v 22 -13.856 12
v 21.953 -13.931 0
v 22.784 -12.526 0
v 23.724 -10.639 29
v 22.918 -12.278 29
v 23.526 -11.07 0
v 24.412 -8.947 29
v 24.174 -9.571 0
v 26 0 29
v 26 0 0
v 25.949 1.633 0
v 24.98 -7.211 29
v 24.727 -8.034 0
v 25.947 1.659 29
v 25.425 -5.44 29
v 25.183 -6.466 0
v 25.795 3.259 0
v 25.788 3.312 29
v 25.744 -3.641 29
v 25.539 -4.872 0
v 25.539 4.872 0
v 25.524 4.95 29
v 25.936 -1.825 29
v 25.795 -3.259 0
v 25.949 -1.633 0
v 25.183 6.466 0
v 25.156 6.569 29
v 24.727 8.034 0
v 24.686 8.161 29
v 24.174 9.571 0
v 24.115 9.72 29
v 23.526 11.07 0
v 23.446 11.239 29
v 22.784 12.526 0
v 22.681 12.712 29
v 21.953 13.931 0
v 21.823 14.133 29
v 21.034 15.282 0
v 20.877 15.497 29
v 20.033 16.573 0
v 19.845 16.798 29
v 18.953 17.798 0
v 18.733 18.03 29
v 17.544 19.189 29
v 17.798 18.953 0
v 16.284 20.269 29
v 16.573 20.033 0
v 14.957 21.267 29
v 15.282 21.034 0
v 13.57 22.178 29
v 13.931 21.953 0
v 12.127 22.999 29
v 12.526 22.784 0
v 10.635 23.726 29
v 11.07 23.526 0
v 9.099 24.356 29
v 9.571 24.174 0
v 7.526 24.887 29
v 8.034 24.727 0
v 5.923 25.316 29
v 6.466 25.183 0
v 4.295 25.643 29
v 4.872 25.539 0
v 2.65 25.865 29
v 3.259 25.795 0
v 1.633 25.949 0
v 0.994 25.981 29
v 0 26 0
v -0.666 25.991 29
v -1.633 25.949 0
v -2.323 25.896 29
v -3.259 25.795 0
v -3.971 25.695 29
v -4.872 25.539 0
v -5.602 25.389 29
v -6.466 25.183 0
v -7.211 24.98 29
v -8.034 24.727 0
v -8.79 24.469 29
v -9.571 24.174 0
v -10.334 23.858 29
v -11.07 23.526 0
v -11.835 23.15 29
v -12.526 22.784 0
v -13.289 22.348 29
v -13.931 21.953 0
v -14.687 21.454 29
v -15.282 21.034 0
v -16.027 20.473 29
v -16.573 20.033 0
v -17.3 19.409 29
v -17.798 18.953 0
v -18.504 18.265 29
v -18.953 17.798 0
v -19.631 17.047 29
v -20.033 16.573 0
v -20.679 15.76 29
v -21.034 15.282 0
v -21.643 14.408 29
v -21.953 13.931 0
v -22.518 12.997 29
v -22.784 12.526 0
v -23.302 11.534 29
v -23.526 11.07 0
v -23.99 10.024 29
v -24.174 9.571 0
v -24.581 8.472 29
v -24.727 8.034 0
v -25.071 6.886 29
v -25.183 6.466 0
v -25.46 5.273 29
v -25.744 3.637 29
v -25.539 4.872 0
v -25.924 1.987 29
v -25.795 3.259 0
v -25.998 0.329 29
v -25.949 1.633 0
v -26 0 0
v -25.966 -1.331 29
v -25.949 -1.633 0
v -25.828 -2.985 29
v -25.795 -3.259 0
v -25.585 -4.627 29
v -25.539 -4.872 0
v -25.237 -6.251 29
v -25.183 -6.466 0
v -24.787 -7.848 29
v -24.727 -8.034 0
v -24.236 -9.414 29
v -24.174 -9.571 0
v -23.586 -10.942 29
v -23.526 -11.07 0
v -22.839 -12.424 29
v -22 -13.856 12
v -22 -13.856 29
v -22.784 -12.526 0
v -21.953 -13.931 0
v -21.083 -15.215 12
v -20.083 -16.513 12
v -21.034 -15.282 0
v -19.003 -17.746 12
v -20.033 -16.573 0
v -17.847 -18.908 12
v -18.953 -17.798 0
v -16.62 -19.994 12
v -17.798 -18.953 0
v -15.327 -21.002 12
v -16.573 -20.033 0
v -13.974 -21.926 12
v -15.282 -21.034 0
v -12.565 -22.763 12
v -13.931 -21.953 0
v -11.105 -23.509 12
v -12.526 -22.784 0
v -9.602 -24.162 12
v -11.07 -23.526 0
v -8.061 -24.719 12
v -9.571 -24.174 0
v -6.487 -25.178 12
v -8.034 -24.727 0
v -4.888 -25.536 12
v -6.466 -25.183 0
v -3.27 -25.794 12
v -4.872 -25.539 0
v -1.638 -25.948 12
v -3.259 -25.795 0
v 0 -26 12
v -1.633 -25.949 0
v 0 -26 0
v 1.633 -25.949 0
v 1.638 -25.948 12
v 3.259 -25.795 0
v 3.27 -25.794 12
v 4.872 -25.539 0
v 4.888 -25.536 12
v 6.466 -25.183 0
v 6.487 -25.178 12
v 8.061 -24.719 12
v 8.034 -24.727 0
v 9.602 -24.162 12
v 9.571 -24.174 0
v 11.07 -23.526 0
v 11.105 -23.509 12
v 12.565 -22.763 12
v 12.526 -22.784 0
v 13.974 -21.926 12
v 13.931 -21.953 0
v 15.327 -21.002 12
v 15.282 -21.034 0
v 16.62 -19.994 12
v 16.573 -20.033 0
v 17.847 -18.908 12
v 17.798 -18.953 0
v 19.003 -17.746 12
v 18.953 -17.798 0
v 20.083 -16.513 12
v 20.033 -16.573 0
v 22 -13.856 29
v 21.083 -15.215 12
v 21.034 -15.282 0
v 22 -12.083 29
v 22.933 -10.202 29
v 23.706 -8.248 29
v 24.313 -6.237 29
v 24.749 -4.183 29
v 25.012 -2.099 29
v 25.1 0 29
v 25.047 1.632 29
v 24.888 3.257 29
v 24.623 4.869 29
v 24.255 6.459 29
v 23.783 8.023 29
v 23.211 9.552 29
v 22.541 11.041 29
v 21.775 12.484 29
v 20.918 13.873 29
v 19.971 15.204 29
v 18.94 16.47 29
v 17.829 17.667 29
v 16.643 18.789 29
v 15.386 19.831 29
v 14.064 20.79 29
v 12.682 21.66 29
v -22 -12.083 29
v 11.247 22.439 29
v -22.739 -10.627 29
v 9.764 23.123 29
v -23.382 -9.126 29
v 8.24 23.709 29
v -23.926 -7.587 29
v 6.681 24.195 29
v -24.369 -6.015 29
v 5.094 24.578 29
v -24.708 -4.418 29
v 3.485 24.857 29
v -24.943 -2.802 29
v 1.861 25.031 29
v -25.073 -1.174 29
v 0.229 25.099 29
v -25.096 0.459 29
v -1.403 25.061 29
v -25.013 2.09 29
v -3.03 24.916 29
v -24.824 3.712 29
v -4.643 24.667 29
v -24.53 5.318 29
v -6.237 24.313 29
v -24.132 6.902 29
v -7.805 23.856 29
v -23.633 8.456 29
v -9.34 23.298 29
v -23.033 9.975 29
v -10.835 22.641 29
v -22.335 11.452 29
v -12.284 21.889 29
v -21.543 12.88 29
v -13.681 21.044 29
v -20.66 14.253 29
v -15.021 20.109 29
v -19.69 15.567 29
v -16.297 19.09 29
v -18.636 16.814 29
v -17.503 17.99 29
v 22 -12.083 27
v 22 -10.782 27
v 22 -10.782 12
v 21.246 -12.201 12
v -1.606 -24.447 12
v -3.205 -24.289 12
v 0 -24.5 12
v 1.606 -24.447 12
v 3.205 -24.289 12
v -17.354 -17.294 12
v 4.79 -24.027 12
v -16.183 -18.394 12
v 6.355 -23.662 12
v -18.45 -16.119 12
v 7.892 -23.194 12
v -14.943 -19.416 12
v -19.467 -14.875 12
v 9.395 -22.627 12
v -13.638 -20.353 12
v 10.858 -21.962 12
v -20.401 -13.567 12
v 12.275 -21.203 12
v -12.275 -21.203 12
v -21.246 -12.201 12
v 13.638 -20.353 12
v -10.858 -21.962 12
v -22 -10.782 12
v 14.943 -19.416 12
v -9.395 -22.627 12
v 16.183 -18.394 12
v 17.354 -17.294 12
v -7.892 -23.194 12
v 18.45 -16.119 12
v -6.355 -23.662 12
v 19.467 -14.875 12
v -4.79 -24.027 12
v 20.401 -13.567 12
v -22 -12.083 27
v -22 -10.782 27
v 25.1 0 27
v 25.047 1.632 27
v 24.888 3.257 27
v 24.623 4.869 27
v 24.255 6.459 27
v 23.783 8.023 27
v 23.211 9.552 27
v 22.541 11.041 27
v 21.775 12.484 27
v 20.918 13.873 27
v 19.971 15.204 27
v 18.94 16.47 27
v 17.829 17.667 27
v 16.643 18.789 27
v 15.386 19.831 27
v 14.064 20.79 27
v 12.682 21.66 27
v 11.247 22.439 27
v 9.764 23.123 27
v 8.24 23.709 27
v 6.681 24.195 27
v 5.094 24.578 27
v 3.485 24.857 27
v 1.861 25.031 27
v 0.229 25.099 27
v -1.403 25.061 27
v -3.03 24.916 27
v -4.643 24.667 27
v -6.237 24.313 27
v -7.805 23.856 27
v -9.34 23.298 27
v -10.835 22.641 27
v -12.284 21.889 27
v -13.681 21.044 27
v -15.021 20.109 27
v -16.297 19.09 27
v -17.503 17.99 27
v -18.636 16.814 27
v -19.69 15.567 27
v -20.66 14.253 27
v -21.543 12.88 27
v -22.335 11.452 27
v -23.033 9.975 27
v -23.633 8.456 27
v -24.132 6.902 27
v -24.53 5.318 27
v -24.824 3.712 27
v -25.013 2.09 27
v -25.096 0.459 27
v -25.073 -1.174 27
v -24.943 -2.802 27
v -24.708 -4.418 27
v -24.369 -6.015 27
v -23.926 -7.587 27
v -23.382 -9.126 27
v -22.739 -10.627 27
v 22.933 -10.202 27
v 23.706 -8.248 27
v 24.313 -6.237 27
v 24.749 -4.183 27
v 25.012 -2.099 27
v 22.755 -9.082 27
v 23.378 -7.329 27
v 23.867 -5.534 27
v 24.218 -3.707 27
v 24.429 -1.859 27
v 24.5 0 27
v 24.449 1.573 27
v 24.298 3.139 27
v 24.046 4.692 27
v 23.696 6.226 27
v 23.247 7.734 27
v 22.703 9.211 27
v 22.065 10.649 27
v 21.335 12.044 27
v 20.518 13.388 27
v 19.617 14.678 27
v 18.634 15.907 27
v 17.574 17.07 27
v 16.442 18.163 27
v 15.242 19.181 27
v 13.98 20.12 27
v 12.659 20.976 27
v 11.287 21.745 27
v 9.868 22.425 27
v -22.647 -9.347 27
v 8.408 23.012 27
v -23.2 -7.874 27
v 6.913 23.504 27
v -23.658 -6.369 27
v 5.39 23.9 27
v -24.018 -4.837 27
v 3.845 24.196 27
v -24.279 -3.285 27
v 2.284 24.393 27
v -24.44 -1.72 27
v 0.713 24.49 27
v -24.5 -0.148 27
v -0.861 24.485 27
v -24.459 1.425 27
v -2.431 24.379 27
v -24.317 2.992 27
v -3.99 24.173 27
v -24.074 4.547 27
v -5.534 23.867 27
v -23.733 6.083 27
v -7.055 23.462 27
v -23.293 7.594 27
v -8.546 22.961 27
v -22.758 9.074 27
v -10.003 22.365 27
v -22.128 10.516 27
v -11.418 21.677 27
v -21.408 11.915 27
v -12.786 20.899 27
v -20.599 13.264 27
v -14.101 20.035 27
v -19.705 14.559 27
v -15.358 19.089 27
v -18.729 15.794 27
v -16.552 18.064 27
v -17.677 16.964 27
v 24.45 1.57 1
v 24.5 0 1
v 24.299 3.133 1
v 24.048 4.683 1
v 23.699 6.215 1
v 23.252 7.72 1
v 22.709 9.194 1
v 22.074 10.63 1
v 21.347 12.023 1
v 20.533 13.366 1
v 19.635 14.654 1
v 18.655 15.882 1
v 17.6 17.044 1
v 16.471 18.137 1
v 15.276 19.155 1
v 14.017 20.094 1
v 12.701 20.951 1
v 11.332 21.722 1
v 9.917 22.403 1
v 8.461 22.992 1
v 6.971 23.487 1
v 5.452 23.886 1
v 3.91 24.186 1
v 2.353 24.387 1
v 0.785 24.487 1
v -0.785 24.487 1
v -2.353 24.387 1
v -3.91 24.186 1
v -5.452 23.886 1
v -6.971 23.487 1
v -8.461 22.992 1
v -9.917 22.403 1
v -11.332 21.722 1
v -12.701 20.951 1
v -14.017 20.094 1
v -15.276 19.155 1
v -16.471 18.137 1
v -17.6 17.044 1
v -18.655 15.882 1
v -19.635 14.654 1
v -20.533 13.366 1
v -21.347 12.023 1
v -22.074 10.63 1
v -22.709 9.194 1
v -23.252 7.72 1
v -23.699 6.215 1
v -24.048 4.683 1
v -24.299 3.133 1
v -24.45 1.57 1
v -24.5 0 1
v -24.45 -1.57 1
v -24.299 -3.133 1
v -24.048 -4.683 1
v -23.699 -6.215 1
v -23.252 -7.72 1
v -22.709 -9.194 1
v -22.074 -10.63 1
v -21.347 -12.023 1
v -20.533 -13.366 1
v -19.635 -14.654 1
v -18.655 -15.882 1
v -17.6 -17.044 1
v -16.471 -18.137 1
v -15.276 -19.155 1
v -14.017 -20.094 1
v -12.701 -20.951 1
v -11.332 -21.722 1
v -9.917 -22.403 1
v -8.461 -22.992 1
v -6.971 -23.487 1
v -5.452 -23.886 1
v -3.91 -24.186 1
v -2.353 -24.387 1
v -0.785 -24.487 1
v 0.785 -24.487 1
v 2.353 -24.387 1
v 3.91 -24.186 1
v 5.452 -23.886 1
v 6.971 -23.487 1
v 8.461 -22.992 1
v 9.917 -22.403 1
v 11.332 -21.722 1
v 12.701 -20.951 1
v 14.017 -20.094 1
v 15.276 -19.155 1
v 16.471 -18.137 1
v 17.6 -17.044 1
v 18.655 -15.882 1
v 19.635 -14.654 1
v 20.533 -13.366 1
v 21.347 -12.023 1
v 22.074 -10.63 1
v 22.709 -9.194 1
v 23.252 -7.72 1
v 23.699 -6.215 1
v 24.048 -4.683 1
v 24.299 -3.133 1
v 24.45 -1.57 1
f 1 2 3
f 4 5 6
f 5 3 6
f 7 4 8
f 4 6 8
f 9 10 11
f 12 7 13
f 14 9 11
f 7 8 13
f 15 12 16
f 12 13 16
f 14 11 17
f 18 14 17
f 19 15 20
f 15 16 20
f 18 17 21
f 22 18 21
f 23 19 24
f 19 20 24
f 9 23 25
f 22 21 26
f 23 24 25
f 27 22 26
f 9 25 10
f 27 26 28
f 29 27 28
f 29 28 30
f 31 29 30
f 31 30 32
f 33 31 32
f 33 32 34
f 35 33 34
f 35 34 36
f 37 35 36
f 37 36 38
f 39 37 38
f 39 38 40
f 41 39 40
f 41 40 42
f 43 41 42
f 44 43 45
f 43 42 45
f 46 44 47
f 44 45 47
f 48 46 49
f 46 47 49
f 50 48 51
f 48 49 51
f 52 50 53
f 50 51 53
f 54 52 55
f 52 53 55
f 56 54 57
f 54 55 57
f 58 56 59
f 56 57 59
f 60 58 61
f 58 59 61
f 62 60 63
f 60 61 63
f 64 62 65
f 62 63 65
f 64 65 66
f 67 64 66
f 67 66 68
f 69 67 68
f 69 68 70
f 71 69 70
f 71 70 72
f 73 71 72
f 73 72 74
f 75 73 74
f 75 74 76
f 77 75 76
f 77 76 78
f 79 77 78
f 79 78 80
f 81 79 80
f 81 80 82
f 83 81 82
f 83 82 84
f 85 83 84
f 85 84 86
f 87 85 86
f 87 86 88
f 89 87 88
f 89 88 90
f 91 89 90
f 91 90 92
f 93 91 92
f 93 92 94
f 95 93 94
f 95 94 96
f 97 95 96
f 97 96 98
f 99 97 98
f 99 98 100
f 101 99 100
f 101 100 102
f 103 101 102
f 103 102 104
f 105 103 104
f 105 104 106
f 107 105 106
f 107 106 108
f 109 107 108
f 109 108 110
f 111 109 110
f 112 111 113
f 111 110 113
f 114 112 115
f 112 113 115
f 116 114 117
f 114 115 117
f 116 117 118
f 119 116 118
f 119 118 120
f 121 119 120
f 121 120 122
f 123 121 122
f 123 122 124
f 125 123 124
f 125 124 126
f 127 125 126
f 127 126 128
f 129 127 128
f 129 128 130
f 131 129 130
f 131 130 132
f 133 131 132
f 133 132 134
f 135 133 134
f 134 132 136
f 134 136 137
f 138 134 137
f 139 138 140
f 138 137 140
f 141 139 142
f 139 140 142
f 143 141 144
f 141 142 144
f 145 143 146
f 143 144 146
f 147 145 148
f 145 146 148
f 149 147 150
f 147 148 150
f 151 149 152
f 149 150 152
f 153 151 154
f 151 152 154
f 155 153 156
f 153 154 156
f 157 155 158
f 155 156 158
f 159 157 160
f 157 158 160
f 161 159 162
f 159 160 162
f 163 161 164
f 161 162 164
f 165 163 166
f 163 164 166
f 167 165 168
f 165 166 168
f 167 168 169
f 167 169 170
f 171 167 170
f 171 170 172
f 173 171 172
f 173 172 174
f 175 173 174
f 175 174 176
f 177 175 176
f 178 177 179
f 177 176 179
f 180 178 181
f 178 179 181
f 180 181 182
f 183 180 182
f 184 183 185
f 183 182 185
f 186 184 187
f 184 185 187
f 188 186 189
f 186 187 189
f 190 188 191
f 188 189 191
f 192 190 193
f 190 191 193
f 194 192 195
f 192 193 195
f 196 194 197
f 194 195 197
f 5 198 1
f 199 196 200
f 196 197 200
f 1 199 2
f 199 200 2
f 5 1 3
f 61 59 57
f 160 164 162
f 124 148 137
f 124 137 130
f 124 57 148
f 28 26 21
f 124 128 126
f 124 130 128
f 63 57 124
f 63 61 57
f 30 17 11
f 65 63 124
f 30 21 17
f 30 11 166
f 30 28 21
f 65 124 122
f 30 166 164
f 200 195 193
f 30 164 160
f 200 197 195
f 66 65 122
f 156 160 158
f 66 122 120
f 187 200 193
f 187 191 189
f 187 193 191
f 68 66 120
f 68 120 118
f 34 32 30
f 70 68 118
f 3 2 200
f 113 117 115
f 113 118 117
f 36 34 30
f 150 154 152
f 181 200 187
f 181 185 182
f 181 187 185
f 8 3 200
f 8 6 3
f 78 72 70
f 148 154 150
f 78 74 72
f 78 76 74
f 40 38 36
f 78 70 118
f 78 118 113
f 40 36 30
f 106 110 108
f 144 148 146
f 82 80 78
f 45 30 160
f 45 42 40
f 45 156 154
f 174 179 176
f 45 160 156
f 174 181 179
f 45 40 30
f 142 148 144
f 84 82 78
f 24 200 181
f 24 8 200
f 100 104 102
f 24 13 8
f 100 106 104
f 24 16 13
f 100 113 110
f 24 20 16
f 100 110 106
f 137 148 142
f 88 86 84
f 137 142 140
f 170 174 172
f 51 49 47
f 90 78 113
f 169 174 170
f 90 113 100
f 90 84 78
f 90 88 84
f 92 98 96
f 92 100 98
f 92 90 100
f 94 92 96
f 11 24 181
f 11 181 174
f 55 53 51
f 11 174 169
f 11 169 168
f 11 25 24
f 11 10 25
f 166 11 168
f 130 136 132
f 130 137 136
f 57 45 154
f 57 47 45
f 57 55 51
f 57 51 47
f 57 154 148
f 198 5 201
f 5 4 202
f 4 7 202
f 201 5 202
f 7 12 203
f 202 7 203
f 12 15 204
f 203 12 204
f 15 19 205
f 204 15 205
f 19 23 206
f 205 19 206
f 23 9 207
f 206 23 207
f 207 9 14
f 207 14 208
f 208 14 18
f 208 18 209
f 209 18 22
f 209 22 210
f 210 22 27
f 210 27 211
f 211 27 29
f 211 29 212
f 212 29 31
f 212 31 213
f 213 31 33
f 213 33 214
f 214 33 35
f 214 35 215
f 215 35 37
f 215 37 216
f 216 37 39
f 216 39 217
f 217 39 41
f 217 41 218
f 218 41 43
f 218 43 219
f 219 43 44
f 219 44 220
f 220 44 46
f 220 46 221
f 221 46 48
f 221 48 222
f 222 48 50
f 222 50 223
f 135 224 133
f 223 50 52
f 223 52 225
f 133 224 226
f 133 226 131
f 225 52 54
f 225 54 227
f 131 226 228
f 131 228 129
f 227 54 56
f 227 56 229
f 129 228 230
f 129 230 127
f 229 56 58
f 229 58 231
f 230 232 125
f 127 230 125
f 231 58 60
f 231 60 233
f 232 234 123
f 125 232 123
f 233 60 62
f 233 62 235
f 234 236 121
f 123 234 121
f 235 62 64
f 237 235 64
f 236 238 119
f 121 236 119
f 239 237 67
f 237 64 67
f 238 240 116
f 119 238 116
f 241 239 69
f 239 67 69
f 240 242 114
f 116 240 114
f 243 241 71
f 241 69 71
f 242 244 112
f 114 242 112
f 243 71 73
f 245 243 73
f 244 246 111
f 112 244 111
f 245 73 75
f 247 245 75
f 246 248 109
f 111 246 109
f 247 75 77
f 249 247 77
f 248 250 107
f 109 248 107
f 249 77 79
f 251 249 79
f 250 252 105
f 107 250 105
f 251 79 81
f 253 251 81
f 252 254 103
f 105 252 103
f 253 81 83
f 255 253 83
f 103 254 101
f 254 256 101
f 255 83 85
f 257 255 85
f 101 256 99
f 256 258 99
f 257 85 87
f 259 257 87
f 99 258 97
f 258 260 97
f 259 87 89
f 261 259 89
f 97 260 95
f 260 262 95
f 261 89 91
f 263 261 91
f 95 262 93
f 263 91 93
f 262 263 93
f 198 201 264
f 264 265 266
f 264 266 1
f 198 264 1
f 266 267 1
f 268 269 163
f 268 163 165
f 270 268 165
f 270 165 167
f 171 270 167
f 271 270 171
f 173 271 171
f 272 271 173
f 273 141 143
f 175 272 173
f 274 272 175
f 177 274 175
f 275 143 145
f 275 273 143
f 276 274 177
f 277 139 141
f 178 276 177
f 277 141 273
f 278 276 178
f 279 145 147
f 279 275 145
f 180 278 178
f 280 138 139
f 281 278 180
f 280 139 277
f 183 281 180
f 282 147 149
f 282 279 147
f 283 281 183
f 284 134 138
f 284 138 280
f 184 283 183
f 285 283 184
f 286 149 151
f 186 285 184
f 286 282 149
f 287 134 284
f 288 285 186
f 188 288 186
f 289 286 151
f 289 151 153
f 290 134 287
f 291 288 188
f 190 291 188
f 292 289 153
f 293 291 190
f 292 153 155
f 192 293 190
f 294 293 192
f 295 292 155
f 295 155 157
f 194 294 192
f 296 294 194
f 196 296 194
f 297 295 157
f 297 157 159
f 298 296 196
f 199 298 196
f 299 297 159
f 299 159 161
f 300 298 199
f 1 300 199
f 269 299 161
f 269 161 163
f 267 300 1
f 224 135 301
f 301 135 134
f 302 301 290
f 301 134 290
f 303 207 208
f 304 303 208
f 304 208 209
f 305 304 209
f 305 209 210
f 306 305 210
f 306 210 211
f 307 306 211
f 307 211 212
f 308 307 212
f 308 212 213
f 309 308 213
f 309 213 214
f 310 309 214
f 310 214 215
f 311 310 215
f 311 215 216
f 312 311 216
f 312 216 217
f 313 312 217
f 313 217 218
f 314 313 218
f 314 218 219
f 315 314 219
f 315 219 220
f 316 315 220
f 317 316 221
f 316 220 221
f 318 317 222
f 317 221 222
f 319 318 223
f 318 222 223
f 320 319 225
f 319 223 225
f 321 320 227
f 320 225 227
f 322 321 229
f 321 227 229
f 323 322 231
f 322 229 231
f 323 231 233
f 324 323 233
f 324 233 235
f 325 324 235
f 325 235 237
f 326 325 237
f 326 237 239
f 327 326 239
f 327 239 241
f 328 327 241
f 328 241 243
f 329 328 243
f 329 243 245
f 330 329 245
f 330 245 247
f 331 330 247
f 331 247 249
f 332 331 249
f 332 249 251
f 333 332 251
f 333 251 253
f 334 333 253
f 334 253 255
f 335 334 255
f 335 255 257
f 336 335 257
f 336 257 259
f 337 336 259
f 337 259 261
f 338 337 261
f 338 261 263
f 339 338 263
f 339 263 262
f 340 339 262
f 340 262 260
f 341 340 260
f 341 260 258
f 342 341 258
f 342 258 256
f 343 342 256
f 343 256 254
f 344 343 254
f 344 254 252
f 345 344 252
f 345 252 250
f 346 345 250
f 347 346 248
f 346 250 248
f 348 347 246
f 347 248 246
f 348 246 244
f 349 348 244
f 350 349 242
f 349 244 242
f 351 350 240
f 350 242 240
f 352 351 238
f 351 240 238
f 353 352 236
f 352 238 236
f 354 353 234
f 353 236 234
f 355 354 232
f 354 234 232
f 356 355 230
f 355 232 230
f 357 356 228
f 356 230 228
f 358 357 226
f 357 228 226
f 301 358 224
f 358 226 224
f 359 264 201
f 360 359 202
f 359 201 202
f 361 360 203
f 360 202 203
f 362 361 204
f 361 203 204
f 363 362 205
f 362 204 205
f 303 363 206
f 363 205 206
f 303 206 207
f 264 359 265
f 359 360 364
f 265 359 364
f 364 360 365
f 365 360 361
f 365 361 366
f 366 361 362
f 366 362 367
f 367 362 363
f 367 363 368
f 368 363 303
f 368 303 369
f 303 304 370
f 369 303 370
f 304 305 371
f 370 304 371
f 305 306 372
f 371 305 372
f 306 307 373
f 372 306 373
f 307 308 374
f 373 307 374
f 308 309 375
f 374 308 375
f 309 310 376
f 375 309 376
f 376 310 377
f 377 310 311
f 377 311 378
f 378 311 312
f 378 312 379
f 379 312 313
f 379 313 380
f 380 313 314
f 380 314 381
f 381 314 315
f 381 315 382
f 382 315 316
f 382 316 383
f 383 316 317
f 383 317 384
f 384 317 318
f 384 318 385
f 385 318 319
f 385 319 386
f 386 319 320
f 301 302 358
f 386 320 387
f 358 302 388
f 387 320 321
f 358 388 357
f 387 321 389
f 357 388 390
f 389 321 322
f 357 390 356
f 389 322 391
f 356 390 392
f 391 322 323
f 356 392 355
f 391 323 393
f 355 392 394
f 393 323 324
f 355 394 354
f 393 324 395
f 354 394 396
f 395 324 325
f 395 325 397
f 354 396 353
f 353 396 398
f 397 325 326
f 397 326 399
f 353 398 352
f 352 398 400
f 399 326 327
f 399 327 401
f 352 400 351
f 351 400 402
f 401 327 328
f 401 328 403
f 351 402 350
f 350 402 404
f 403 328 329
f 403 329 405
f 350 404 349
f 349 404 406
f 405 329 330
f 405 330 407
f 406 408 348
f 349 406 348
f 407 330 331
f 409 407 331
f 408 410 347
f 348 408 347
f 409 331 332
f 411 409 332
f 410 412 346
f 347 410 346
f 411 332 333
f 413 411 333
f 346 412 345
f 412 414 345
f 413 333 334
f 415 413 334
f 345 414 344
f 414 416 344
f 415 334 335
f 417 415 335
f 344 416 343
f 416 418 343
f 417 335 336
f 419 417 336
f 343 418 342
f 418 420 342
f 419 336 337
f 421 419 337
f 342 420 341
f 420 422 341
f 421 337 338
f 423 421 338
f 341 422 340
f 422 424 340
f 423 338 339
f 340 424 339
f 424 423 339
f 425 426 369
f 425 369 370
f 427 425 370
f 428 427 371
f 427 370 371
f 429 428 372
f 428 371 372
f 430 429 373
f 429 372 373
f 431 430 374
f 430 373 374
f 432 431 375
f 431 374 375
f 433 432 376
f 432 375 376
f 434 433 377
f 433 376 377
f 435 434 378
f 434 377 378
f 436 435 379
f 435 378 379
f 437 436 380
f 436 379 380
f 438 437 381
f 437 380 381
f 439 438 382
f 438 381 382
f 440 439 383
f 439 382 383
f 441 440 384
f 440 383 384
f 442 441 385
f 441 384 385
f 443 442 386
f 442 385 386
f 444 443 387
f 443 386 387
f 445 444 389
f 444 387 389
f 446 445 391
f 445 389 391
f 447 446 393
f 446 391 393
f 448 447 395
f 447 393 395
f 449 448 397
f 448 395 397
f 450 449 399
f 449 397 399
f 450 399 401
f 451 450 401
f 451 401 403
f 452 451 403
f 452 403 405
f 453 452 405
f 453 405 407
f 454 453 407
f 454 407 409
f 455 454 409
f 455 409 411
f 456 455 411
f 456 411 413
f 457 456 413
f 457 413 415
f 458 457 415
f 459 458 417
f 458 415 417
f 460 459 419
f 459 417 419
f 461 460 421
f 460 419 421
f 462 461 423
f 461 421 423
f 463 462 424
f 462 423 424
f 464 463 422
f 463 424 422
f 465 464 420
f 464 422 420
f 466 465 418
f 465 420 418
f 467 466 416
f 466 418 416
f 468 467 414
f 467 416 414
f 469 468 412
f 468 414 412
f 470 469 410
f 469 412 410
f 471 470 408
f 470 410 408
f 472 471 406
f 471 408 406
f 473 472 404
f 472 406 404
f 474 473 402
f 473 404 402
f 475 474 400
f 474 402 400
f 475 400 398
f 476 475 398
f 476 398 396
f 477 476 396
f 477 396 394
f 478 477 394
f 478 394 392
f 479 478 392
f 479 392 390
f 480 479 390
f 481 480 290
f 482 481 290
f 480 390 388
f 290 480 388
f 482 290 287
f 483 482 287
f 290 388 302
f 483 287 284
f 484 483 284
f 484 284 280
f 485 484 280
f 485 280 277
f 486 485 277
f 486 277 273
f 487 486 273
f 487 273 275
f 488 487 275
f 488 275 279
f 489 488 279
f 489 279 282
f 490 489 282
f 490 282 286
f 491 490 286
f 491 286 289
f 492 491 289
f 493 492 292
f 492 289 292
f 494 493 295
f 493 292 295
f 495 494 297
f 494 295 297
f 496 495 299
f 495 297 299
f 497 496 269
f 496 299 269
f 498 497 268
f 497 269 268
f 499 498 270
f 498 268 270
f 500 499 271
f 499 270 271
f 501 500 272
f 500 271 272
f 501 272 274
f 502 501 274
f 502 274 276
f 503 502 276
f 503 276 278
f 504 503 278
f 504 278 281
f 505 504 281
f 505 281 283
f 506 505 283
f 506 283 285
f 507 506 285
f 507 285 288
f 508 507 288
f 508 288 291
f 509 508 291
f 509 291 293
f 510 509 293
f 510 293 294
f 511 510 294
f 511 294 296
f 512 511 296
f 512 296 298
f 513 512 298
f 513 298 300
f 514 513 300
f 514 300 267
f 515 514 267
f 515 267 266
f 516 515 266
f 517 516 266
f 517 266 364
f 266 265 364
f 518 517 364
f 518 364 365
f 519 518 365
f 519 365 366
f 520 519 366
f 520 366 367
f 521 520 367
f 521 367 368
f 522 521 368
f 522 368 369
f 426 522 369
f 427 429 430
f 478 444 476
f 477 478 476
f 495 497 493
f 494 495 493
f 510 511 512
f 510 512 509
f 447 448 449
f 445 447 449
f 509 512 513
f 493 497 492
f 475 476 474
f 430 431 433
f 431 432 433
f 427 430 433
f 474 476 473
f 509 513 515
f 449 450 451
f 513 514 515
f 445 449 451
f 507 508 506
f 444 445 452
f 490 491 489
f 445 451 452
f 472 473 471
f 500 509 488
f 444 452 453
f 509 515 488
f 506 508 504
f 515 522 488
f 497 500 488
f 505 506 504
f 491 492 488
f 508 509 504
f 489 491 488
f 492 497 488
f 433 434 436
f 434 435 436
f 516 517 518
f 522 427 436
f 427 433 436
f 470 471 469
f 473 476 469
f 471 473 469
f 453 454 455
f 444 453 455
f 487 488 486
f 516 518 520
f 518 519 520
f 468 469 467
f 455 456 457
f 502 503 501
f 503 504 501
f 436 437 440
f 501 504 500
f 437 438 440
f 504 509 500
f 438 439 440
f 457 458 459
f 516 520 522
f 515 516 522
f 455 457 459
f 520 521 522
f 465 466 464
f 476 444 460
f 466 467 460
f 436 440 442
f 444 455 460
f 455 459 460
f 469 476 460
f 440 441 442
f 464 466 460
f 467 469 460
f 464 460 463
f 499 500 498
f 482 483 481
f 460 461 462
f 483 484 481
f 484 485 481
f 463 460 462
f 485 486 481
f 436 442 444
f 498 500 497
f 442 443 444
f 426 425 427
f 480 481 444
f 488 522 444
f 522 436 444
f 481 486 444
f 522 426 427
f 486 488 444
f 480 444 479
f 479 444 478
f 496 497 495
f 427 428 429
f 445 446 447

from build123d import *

# Parameters (mm, degrees)
SKETCH003_W     = 44
SKETCH003_H     = 20
PAD001_DEPTH    = 17
SKETCH_R        = 26
PAD_DEPTH       = 29
SKETCH001_R     = 25.1
POCKET_DEPTH    = 2
SKETCH002_R     = 24.5
POCKET001_DEPTH = 26


with BuildPart() as pad001:
    # Sketch003 → Pad001 (new body)
    with BuildSketch(Plane.XY.offset(12)):
        with Locations((0, -17)):
            Rectangle(SKETCH003_W, SKETCH003_H)
    extrude(amount=PAD001_DEPTH)


with BuildPart() as cut:
    # Sketch → Pad (new body)
    with BuildSketch(Plane.XY):
        Circle(SKETCH_R)
    extrude(amount=PAD_DEPTH)

    # Sketch001 → Pocket (cut)
    with BuildSketch(Plane.XY.offset(29)):
        Circle(SKETCH001_R)
    extrude(amount=-POCKET_DEPTH, mode=Mode.SUBTRACT)

    # Sketch002 → Pocket001 (cut)
    with BuildSketch(Plane.XY.offset(27)):
        Circle(SKETCH002_R)
    extrude(amount=-POCKET001_DEPTH, mode=Mode.SUBTRACT)

    # Cut: cut Pad001
    add(pad001.part, mode=Mode.SUBTRACT)


solid = cut.part
